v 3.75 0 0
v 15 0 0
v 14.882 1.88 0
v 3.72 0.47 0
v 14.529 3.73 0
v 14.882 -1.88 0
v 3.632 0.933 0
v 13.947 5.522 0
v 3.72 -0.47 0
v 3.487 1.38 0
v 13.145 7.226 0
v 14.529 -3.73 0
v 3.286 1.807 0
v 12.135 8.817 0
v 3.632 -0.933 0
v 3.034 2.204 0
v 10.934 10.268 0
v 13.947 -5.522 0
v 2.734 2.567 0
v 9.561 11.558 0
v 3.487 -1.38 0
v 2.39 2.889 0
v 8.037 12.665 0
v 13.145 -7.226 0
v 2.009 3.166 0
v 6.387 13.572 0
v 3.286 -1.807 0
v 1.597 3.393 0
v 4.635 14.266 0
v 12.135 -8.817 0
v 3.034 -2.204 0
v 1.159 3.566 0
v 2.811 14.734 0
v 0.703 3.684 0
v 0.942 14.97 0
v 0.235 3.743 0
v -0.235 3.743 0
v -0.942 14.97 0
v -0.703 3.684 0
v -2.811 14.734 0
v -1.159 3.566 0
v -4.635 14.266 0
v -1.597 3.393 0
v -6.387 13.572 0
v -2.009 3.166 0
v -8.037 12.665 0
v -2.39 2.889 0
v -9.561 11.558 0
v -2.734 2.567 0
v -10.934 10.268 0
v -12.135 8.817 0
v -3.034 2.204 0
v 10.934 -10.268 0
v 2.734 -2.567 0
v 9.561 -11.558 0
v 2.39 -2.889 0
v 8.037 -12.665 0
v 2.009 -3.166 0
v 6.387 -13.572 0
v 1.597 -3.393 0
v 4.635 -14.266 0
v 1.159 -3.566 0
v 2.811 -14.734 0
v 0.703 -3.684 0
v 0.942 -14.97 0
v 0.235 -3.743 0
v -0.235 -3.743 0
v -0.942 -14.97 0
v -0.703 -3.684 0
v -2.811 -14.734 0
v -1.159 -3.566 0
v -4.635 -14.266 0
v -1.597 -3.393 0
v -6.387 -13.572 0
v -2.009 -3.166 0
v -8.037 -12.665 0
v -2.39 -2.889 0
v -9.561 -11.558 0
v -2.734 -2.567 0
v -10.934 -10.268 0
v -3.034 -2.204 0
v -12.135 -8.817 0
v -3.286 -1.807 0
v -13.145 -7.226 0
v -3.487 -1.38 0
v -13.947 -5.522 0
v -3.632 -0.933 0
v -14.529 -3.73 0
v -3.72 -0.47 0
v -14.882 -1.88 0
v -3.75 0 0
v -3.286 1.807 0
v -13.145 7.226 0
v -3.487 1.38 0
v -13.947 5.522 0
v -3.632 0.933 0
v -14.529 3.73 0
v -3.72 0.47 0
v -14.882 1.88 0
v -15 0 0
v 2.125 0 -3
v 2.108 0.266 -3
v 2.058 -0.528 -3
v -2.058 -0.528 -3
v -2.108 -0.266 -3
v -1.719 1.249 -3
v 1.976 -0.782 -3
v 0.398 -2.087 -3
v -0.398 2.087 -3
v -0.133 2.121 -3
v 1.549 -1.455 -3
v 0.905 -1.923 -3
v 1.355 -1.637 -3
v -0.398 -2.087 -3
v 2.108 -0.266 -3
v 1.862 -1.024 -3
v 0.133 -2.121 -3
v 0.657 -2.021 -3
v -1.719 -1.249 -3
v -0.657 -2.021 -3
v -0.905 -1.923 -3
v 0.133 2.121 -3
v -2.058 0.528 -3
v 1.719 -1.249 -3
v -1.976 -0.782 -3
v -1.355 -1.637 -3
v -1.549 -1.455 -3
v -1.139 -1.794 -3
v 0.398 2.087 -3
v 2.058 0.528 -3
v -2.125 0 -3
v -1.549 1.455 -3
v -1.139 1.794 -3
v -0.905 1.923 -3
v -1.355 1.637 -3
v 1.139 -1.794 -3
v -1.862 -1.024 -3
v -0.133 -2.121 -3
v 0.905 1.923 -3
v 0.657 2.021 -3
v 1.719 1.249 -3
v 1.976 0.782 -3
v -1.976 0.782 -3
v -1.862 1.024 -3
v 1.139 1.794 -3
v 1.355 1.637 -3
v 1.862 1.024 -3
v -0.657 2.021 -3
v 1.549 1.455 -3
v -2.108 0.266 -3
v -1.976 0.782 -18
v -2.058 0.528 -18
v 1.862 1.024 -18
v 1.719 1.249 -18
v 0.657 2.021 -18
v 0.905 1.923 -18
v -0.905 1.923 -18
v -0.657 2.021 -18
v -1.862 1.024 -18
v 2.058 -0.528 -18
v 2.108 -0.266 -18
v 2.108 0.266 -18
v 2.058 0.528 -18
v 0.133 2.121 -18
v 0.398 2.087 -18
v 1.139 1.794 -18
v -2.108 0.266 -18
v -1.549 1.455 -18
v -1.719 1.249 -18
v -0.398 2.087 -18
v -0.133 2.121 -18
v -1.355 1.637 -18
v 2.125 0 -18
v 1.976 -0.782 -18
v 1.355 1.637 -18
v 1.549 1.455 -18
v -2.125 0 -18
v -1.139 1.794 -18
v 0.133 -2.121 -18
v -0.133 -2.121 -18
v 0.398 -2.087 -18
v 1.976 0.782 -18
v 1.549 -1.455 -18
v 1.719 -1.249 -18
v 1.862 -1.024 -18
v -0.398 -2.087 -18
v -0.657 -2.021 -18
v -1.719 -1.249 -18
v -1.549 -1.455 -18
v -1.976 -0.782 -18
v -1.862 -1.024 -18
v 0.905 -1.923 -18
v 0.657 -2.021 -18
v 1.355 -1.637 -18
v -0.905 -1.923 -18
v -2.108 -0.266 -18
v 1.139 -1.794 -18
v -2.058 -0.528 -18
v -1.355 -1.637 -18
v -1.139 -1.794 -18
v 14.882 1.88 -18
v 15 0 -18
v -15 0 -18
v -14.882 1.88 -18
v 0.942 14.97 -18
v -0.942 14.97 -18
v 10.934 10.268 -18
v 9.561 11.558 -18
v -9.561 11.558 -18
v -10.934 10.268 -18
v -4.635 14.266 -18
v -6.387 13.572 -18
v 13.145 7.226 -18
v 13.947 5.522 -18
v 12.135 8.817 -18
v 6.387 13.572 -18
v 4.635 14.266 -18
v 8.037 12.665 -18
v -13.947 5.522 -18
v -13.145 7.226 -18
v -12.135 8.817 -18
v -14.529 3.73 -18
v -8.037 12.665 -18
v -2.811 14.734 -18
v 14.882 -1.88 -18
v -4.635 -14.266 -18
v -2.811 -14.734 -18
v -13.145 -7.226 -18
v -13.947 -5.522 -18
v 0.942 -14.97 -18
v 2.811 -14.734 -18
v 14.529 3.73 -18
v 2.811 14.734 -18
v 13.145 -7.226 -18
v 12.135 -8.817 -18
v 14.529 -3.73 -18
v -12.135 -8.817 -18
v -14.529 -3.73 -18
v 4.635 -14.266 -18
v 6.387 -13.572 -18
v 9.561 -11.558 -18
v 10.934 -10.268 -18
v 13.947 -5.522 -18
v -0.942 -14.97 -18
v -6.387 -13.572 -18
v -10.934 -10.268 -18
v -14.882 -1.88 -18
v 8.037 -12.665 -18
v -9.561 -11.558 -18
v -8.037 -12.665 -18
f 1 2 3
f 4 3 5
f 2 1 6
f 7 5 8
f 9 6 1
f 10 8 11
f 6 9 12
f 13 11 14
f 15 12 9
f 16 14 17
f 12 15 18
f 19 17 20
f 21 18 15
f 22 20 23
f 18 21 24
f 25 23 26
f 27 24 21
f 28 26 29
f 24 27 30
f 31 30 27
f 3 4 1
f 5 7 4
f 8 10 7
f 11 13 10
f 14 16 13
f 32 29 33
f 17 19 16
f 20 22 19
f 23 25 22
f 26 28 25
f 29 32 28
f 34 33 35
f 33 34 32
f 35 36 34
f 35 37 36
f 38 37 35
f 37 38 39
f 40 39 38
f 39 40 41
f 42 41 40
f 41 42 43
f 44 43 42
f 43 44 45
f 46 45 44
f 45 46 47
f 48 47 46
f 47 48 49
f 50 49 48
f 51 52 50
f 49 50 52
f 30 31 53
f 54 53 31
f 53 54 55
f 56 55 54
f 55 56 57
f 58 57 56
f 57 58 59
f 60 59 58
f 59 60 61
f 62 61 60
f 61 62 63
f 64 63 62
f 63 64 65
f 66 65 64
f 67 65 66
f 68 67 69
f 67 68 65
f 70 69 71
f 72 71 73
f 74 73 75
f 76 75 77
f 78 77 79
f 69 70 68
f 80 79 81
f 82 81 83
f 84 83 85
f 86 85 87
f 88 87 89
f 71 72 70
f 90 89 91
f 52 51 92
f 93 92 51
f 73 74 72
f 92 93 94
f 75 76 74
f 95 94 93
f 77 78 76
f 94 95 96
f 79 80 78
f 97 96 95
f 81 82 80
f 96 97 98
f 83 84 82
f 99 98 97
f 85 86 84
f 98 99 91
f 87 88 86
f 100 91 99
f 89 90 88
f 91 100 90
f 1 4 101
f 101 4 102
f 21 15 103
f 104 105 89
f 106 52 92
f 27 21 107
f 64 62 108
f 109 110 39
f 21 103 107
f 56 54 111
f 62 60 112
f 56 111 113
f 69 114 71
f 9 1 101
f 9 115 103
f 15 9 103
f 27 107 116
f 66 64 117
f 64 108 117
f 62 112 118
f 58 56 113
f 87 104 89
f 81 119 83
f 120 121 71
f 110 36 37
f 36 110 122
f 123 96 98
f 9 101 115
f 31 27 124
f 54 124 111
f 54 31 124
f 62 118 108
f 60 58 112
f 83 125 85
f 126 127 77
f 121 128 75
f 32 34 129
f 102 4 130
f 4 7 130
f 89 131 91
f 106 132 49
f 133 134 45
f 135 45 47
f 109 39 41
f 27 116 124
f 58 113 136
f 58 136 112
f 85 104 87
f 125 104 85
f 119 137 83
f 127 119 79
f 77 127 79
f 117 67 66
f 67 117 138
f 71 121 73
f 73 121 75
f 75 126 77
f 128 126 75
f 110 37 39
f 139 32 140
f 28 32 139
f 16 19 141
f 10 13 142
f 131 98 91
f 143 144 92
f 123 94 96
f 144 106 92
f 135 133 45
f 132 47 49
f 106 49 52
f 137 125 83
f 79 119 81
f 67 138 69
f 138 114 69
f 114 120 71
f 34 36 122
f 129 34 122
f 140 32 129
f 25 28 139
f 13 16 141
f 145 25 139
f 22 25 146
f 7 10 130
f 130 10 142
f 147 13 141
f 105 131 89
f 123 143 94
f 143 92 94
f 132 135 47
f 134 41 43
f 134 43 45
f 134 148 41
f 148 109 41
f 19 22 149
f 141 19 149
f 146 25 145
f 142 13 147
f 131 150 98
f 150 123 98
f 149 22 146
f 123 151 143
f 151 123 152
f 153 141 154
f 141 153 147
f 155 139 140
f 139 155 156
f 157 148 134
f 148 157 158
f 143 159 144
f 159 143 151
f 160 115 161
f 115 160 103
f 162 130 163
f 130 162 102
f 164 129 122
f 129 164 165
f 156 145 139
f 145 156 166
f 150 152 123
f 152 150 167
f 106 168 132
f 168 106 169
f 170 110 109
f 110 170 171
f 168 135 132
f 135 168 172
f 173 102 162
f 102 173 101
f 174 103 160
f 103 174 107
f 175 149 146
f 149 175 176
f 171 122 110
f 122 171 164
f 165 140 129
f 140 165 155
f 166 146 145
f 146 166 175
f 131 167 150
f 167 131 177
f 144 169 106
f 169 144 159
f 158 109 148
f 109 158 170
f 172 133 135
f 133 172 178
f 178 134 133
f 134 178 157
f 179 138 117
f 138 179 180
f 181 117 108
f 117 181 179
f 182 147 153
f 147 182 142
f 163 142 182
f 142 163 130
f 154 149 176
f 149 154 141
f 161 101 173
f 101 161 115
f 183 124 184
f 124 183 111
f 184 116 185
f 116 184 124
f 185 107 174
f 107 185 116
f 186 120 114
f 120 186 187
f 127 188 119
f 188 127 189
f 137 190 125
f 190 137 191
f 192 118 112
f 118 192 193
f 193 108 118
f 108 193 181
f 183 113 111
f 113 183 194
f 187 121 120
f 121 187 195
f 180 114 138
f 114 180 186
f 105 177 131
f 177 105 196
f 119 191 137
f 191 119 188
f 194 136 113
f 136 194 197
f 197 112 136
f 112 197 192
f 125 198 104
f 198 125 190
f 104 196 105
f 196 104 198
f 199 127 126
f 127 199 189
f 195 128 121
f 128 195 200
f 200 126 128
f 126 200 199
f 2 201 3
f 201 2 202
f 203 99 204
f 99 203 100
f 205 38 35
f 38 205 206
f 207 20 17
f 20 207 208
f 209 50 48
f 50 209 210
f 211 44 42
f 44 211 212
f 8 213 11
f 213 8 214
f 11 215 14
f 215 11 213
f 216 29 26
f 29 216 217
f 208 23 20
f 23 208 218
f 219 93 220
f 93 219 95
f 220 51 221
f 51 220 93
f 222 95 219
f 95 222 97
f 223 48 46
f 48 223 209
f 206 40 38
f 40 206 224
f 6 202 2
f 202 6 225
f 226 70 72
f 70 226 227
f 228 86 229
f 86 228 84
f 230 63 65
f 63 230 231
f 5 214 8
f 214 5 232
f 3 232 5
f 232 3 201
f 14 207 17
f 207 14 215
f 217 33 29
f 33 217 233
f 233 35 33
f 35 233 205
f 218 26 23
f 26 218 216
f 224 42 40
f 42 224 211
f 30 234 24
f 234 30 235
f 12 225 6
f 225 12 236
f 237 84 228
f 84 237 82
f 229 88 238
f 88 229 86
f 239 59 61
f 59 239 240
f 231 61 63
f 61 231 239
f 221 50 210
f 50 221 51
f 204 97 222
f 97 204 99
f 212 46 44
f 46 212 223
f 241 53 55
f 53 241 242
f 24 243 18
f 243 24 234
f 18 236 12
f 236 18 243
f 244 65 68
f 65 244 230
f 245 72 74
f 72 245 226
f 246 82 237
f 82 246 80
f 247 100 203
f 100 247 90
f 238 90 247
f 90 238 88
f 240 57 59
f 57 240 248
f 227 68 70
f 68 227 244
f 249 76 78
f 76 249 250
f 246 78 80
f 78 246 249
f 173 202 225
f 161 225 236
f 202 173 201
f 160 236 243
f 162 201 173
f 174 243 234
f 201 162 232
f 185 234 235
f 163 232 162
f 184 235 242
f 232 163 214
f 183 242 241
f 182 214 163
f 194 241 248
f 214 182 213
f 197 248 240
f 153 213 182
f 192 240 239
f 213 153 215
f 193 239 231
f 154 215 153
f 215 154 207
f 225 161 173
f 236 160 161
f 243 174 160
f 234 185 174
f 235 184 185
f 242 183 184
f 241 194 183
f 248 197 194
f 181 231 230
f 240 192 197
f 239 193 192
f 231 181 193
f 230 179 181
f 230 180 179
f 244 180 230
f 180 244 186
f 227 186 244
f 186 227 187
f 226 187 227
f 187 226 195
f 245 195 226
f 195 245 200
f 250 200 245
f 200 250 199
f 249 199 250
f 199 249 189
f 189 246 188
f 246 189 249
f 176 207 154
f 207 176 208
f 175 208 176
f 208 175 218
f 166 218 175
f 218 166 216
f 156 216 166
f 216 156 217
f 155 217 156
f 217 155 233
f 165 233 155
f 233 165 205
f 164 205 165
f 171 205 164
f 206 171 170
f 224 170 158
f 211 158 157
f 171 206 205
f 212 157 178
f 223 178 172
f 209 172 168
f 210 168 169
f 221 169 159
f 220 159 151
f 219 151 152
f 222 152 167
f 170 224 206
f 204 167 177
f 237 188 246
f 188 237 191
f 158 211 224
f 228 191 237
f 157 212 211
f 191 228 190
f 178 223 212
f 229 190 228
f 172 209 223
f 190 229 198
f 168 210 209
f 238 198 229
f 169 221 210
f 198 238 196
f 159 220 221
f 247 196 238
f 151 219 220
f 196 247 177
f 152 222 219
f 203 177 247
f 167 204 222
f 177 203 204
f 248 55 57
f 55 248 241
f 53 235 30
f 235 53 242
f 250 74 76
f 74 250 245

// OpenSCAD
$fn = 50;


difference() {
	union() {
		translate(v = [0, 0, -18.0000000000]) {
			cylinder(h = 18, r = 15.0000000000);
		}
	}
	union() {
		translate(v = [0, 0, 0]) {
			rotate(a = [0, 0, 0]) {
				difference() {
					union() {
						translate(v = [0, 0, -21.0000000000]) {
							cylinder(h = 21, r = 2.0000000000);
						}
						translate(v = [0, 0, -3]) {
							cylinder(h = 3, r1 = 2.1250000000, r2 = 3.7500000000);
						}
						translate(v = [0, 0, -21.0000000000]) {
							cylinder(h = 21, r = 2.1250000000);
						}
						translate(v = [0, 0, -21.0000000000]) {
							cylinder(h = 21, r = 2.0000000000);
						}
					}
					union();
				}
			}
		}
	}
}
